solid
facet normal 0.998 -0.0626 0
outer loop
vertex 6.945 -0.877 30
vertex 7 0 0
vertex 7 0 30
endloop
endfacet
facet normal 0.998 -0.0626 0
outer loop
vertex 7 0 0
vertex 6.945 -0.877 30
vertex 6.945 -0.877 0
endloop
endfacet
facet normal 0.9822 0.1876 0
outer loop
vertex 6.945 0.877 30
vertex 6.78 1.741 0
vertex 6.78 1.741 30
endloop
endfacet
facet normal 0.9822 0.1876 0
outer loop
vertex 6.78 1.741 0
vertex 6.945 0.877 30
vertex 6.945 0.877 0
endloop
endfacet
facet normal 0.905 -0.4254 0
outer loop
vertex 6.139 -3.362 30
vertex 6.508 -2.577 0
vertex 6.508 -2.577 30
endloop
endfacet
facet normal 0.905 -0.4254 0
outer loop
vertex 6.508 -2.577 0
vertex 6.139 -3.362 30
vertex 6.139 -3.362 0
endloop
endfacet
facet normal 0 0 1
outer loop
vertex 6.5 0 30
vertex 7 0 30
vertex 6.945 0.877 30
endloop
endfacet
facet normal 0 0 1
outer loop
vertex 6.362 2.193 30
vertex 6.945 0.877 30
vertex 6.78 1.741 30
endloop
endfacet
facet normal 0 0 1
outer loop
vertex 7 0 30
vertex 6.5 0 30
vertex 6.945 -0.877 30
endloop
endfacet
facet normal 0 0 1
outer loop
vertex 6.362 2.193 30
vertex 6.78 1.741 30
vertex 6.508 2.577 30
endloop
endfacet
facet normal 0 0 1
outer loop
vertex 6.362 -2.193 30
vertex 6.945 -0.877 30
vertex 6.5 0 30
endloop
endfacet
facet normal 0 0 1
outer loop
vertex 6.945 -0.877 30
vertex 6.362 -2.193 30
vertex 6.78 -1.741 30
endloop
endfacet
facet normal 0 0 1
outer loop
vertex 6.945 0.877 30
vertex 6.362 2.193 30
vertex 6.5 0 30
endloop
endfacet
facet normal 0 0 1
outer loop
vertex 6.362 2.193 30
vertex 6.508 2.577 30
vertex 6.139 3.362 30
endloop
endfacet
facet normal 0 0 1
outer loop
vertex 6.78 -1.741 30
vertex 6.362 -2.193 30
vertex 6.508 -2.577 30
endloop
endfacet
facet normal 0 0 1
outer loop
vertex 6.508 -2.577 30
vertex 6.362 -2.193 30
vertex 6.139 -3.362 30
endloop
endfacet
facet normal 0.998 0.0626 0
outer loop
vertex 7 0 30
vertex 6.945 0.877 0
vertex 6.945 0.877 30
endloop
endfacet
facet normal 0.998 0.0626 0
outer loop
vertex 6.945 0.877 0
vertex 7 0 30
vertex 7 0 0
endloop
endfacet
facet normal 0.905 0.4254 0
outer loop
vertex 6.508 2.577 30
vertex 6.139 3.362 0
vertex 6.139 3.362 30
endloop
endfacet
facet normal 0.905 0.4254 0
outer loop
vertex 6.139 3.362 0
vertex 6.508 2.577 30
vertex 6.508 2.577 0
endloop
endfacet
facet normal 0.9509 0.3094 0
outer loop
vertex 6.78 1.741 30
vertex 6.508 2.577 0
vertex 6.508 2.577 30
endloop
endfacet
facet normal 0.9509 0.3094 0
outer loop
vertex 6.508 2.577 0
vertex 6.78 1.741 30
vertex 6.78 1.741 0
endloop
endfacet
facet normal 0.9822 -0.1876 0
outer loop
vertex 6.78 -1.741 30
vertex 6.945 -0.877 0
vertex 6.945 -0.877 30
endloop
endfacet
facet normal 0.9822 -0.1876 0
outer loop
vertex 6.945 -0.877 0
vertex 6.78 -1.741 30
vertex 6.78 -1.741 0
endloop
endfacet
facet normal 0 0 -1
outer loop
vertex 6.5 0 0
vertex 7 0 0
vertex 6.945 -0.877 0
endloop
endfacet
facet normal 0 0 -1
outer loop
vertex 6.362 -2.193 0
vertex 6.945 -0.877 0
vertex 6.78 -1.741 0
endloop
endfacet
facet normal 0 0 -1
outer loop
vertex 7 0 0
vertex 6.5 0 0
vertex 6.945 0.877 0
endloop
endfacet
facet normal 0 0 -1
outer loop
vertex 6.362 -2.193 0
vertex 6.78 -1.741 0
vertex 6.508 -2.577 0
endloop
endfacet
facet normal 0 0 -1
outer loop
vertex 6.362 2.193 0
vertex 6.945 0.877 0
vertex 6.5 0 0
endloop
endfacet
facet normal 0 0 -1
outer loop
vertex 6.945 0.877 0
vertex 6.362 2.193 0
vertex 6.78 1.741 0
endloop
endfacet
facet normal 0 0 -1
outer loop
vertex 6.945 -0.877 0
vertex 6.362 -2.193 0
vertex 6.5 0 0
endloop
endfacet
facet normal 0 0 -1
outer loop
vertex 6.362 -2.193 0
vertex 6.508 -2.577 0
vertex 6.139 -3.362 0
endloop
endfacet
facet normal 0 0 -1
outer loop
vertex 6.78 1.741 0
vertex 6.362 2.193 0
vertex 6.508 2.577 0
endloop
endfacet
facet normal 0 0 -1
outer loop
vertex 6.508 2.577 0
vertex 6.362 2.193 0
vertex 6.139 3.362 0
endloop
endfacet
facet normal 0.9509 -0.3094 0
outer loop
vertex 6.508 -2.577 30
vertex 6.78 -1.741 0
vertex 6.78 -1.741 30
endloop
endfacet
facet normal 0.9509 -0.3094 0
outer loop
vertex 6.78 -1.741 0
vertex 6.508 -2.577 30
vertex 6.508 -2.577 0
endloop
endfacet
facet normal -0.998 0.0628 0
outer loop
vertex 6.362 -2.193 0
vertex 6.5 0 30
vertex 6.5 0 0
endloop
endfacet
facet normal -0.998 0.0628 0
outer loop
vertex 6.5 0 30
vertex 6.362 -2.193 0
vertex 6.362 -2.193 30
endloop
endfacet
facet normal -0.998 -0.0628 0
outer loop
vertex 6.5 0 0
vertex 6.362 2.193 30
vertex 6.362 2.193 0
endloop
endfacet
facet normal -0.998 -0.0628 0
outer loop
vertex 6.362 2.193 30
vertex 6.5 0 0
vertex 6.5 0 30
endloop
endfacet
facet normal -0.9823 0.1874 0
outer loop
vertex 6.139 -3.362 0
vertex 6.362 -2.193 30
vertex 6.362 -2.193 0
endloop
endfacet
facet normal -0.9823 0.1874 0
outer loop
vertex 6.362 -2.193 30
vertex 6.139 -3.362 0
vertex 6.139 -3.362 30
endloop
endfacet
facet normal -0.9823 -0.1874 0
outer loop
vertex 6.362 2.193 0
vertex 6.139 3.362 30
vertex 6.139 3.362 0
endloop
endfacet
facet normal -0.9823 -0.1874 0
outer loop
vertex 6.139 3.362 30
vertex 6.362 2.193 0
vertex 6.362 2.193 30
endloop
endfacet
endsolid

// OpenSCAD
$fn = 50;


difference() {
	union() {
		cylinder(h = 30, r = 7.0000000000);
		translate(v = [-14.0000000000, 0, 0]) {
			cylinder(h = 30, r = 7.0000000000);
		}
	}
	union() {
		cylinder(h = 30, r = 3.2500000000);
		cylinder(h = 30, r = 1.8000000000);
		cylinder(h = 30, r = 1.8000000000);
		cylinder(h = 30, r = 1.8000000000);
		translate(v = [-18.5000000000, 0, 0]) {
			hull() {
				translate(v = [-3.7500000000, 0.0000000000, 0]) {
					cylinder(h = 30, r = 7.5000000000);
				}
				translate(v = [3.7500000000, 0.0000000000, 0]) {
					cylinder(h = 30, r = 7.5000000000);
				}
				translate(v = [-3.7500000000, -0.0000000000, 0]) {
					cylinder(h = 30, r = 7.5000000000);
				}
				translate(v = [3.7500000000, -0.0000000000, 0]) {
					cylinder(h = 30, r = 7.5000000000);
				}
			}
		}
		translate(v = [-11.0000000000, 0, 0.0000000000]) {
			cylinder(h = 30, r = 17.5000000000);
		}
	}
}
